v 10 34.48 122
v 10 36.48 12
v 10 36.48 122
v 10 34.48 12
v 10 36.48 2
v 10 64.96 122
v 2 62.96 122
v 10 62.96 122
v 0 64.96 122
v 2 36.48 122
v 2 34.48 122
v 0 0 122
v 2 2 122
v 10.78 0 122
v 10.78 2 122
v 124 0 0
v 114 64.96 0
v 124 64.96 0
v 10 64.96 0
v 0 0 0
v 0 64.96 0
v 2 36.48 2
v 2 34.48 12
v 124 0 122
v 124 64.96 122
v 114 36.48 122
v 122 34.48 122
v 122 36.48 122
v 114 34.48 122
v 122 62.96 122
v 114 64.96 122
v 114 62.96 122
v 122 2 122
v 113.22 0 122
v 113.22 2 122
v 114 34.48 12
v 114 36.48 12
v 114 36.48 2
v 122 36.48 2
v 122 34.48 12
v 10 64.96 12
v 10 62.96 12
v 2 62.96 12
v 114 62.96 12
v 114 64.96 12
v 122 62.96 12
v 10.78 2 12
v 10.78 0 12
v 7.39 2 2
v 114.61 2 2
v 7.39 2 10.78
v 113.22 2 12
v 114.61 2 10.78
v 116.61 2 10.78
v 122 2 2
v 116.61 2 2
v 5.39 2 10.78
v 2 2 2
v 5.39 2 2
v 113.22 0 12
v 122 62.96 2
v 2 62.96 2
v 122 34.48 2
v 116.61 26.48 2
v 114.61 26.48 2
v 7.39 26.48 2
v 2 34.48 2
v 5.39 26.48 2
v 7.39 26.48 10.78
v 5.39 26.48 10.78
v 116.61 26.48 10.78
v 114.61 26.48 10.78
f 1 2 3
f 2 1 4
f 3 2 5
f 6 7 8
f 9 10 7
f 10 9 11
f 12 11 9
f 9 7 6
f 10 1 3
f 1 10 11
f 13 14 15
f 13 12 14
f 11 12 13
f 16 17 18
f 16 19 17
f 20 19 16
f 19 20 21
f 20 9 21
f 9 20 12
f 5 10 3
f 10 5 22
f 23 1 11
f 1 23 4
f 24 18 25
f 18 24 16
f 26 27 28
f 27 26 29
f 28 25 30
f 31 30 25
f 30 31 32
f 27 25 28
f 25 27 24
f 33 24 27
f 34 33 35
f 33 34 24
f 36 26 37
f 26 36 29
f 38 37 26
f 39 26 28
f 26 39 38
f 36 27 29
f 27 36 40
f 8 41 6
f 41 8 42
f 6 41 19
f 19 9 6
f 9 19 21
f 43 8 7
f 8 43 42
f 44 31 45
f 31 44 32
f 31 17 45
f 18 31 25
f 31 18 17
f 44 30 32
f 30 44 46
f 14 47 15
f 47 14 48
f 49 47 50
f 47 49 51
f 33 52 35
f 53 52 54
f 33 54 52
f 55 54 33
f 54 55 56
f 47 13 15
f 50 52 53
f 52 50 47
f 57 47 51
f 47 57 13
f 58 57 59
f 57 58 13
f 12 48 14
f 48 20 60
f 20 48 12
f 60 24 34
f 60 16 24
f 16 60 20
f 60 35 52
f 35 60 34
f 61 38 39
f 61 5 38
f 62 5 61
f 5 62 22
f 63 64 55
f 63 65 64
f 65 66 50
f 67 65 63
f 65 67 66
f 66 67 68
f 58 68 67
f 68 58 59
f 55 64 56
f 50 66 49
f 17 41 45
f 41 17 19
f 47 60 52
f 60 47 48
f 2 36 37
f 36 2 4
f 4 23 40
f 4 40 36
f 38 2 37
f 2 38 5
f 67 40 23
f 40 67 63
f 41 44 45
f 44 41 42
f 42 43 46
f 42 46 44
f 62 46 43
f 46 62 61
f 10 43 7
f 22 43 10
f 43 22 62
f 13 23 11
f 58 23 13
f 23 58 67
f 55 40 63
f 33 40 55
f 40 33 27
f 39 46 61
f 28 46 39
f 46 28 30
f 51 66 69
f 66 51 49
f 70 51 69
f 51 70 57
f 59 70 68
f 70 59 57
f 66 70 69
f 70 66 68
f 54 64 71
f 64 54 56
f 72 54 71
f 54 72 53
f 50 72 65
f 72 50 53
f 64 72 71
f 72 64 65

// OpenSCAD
filter_width = 4.3*25.4;
filter_height = 120;
filter_thickness = 1.2*25.4+2;

fan_width = 120;
fan_height = 120;
fan_thickness = 1.2*25.4 - 4;

thickness = 2;

width = fan_width+thickness*2;
depth = thickness*3 + filter_thickness + fan_thickness;
height = fan_height + thickness;
filter_lip = fan_width - filter_width;
fan_lip = 10;

cube([width, depth, thickness]);
translate([0, 0, thickness])
  cube([width, thickness, fan_lip]);
  
translate([0, thickness + filter_thickness, thickness])
  cube([width, thickness, fan_lip]);

translate([0, thickness*2 + filter_thickness + fan_thickness, thickness])
  cube([width, thickness, fan_lip]);

cube([thickness, depth, height]);
translate([width - thickness, 0, 0])
  cube([thickness, depth, height]);
  
module lips(lip) {
  cube([lip, thickness, height]);
  translate([width - lip, 0, 0])
    cube([lip, thickness, height]);
}

lips(filter_lip);

translate([0, filter_thickness+thickness, 0])
  lips(fan_lip);

translate([0, filter_thickness+fan_thickness + thickness*2, 0])
  lips(fan_lip);

//offset = (fan_width - filter_width)/2 - 1.5;
offset = (fan_width - filter_width)/2;

translate([offset, 0, 0])
  cube([thickness, fan_thickness, filter_lip]);
translate([fan_width - offset, 0, 0])
  cube([thickness, fan_thickness, filter_lip]);
